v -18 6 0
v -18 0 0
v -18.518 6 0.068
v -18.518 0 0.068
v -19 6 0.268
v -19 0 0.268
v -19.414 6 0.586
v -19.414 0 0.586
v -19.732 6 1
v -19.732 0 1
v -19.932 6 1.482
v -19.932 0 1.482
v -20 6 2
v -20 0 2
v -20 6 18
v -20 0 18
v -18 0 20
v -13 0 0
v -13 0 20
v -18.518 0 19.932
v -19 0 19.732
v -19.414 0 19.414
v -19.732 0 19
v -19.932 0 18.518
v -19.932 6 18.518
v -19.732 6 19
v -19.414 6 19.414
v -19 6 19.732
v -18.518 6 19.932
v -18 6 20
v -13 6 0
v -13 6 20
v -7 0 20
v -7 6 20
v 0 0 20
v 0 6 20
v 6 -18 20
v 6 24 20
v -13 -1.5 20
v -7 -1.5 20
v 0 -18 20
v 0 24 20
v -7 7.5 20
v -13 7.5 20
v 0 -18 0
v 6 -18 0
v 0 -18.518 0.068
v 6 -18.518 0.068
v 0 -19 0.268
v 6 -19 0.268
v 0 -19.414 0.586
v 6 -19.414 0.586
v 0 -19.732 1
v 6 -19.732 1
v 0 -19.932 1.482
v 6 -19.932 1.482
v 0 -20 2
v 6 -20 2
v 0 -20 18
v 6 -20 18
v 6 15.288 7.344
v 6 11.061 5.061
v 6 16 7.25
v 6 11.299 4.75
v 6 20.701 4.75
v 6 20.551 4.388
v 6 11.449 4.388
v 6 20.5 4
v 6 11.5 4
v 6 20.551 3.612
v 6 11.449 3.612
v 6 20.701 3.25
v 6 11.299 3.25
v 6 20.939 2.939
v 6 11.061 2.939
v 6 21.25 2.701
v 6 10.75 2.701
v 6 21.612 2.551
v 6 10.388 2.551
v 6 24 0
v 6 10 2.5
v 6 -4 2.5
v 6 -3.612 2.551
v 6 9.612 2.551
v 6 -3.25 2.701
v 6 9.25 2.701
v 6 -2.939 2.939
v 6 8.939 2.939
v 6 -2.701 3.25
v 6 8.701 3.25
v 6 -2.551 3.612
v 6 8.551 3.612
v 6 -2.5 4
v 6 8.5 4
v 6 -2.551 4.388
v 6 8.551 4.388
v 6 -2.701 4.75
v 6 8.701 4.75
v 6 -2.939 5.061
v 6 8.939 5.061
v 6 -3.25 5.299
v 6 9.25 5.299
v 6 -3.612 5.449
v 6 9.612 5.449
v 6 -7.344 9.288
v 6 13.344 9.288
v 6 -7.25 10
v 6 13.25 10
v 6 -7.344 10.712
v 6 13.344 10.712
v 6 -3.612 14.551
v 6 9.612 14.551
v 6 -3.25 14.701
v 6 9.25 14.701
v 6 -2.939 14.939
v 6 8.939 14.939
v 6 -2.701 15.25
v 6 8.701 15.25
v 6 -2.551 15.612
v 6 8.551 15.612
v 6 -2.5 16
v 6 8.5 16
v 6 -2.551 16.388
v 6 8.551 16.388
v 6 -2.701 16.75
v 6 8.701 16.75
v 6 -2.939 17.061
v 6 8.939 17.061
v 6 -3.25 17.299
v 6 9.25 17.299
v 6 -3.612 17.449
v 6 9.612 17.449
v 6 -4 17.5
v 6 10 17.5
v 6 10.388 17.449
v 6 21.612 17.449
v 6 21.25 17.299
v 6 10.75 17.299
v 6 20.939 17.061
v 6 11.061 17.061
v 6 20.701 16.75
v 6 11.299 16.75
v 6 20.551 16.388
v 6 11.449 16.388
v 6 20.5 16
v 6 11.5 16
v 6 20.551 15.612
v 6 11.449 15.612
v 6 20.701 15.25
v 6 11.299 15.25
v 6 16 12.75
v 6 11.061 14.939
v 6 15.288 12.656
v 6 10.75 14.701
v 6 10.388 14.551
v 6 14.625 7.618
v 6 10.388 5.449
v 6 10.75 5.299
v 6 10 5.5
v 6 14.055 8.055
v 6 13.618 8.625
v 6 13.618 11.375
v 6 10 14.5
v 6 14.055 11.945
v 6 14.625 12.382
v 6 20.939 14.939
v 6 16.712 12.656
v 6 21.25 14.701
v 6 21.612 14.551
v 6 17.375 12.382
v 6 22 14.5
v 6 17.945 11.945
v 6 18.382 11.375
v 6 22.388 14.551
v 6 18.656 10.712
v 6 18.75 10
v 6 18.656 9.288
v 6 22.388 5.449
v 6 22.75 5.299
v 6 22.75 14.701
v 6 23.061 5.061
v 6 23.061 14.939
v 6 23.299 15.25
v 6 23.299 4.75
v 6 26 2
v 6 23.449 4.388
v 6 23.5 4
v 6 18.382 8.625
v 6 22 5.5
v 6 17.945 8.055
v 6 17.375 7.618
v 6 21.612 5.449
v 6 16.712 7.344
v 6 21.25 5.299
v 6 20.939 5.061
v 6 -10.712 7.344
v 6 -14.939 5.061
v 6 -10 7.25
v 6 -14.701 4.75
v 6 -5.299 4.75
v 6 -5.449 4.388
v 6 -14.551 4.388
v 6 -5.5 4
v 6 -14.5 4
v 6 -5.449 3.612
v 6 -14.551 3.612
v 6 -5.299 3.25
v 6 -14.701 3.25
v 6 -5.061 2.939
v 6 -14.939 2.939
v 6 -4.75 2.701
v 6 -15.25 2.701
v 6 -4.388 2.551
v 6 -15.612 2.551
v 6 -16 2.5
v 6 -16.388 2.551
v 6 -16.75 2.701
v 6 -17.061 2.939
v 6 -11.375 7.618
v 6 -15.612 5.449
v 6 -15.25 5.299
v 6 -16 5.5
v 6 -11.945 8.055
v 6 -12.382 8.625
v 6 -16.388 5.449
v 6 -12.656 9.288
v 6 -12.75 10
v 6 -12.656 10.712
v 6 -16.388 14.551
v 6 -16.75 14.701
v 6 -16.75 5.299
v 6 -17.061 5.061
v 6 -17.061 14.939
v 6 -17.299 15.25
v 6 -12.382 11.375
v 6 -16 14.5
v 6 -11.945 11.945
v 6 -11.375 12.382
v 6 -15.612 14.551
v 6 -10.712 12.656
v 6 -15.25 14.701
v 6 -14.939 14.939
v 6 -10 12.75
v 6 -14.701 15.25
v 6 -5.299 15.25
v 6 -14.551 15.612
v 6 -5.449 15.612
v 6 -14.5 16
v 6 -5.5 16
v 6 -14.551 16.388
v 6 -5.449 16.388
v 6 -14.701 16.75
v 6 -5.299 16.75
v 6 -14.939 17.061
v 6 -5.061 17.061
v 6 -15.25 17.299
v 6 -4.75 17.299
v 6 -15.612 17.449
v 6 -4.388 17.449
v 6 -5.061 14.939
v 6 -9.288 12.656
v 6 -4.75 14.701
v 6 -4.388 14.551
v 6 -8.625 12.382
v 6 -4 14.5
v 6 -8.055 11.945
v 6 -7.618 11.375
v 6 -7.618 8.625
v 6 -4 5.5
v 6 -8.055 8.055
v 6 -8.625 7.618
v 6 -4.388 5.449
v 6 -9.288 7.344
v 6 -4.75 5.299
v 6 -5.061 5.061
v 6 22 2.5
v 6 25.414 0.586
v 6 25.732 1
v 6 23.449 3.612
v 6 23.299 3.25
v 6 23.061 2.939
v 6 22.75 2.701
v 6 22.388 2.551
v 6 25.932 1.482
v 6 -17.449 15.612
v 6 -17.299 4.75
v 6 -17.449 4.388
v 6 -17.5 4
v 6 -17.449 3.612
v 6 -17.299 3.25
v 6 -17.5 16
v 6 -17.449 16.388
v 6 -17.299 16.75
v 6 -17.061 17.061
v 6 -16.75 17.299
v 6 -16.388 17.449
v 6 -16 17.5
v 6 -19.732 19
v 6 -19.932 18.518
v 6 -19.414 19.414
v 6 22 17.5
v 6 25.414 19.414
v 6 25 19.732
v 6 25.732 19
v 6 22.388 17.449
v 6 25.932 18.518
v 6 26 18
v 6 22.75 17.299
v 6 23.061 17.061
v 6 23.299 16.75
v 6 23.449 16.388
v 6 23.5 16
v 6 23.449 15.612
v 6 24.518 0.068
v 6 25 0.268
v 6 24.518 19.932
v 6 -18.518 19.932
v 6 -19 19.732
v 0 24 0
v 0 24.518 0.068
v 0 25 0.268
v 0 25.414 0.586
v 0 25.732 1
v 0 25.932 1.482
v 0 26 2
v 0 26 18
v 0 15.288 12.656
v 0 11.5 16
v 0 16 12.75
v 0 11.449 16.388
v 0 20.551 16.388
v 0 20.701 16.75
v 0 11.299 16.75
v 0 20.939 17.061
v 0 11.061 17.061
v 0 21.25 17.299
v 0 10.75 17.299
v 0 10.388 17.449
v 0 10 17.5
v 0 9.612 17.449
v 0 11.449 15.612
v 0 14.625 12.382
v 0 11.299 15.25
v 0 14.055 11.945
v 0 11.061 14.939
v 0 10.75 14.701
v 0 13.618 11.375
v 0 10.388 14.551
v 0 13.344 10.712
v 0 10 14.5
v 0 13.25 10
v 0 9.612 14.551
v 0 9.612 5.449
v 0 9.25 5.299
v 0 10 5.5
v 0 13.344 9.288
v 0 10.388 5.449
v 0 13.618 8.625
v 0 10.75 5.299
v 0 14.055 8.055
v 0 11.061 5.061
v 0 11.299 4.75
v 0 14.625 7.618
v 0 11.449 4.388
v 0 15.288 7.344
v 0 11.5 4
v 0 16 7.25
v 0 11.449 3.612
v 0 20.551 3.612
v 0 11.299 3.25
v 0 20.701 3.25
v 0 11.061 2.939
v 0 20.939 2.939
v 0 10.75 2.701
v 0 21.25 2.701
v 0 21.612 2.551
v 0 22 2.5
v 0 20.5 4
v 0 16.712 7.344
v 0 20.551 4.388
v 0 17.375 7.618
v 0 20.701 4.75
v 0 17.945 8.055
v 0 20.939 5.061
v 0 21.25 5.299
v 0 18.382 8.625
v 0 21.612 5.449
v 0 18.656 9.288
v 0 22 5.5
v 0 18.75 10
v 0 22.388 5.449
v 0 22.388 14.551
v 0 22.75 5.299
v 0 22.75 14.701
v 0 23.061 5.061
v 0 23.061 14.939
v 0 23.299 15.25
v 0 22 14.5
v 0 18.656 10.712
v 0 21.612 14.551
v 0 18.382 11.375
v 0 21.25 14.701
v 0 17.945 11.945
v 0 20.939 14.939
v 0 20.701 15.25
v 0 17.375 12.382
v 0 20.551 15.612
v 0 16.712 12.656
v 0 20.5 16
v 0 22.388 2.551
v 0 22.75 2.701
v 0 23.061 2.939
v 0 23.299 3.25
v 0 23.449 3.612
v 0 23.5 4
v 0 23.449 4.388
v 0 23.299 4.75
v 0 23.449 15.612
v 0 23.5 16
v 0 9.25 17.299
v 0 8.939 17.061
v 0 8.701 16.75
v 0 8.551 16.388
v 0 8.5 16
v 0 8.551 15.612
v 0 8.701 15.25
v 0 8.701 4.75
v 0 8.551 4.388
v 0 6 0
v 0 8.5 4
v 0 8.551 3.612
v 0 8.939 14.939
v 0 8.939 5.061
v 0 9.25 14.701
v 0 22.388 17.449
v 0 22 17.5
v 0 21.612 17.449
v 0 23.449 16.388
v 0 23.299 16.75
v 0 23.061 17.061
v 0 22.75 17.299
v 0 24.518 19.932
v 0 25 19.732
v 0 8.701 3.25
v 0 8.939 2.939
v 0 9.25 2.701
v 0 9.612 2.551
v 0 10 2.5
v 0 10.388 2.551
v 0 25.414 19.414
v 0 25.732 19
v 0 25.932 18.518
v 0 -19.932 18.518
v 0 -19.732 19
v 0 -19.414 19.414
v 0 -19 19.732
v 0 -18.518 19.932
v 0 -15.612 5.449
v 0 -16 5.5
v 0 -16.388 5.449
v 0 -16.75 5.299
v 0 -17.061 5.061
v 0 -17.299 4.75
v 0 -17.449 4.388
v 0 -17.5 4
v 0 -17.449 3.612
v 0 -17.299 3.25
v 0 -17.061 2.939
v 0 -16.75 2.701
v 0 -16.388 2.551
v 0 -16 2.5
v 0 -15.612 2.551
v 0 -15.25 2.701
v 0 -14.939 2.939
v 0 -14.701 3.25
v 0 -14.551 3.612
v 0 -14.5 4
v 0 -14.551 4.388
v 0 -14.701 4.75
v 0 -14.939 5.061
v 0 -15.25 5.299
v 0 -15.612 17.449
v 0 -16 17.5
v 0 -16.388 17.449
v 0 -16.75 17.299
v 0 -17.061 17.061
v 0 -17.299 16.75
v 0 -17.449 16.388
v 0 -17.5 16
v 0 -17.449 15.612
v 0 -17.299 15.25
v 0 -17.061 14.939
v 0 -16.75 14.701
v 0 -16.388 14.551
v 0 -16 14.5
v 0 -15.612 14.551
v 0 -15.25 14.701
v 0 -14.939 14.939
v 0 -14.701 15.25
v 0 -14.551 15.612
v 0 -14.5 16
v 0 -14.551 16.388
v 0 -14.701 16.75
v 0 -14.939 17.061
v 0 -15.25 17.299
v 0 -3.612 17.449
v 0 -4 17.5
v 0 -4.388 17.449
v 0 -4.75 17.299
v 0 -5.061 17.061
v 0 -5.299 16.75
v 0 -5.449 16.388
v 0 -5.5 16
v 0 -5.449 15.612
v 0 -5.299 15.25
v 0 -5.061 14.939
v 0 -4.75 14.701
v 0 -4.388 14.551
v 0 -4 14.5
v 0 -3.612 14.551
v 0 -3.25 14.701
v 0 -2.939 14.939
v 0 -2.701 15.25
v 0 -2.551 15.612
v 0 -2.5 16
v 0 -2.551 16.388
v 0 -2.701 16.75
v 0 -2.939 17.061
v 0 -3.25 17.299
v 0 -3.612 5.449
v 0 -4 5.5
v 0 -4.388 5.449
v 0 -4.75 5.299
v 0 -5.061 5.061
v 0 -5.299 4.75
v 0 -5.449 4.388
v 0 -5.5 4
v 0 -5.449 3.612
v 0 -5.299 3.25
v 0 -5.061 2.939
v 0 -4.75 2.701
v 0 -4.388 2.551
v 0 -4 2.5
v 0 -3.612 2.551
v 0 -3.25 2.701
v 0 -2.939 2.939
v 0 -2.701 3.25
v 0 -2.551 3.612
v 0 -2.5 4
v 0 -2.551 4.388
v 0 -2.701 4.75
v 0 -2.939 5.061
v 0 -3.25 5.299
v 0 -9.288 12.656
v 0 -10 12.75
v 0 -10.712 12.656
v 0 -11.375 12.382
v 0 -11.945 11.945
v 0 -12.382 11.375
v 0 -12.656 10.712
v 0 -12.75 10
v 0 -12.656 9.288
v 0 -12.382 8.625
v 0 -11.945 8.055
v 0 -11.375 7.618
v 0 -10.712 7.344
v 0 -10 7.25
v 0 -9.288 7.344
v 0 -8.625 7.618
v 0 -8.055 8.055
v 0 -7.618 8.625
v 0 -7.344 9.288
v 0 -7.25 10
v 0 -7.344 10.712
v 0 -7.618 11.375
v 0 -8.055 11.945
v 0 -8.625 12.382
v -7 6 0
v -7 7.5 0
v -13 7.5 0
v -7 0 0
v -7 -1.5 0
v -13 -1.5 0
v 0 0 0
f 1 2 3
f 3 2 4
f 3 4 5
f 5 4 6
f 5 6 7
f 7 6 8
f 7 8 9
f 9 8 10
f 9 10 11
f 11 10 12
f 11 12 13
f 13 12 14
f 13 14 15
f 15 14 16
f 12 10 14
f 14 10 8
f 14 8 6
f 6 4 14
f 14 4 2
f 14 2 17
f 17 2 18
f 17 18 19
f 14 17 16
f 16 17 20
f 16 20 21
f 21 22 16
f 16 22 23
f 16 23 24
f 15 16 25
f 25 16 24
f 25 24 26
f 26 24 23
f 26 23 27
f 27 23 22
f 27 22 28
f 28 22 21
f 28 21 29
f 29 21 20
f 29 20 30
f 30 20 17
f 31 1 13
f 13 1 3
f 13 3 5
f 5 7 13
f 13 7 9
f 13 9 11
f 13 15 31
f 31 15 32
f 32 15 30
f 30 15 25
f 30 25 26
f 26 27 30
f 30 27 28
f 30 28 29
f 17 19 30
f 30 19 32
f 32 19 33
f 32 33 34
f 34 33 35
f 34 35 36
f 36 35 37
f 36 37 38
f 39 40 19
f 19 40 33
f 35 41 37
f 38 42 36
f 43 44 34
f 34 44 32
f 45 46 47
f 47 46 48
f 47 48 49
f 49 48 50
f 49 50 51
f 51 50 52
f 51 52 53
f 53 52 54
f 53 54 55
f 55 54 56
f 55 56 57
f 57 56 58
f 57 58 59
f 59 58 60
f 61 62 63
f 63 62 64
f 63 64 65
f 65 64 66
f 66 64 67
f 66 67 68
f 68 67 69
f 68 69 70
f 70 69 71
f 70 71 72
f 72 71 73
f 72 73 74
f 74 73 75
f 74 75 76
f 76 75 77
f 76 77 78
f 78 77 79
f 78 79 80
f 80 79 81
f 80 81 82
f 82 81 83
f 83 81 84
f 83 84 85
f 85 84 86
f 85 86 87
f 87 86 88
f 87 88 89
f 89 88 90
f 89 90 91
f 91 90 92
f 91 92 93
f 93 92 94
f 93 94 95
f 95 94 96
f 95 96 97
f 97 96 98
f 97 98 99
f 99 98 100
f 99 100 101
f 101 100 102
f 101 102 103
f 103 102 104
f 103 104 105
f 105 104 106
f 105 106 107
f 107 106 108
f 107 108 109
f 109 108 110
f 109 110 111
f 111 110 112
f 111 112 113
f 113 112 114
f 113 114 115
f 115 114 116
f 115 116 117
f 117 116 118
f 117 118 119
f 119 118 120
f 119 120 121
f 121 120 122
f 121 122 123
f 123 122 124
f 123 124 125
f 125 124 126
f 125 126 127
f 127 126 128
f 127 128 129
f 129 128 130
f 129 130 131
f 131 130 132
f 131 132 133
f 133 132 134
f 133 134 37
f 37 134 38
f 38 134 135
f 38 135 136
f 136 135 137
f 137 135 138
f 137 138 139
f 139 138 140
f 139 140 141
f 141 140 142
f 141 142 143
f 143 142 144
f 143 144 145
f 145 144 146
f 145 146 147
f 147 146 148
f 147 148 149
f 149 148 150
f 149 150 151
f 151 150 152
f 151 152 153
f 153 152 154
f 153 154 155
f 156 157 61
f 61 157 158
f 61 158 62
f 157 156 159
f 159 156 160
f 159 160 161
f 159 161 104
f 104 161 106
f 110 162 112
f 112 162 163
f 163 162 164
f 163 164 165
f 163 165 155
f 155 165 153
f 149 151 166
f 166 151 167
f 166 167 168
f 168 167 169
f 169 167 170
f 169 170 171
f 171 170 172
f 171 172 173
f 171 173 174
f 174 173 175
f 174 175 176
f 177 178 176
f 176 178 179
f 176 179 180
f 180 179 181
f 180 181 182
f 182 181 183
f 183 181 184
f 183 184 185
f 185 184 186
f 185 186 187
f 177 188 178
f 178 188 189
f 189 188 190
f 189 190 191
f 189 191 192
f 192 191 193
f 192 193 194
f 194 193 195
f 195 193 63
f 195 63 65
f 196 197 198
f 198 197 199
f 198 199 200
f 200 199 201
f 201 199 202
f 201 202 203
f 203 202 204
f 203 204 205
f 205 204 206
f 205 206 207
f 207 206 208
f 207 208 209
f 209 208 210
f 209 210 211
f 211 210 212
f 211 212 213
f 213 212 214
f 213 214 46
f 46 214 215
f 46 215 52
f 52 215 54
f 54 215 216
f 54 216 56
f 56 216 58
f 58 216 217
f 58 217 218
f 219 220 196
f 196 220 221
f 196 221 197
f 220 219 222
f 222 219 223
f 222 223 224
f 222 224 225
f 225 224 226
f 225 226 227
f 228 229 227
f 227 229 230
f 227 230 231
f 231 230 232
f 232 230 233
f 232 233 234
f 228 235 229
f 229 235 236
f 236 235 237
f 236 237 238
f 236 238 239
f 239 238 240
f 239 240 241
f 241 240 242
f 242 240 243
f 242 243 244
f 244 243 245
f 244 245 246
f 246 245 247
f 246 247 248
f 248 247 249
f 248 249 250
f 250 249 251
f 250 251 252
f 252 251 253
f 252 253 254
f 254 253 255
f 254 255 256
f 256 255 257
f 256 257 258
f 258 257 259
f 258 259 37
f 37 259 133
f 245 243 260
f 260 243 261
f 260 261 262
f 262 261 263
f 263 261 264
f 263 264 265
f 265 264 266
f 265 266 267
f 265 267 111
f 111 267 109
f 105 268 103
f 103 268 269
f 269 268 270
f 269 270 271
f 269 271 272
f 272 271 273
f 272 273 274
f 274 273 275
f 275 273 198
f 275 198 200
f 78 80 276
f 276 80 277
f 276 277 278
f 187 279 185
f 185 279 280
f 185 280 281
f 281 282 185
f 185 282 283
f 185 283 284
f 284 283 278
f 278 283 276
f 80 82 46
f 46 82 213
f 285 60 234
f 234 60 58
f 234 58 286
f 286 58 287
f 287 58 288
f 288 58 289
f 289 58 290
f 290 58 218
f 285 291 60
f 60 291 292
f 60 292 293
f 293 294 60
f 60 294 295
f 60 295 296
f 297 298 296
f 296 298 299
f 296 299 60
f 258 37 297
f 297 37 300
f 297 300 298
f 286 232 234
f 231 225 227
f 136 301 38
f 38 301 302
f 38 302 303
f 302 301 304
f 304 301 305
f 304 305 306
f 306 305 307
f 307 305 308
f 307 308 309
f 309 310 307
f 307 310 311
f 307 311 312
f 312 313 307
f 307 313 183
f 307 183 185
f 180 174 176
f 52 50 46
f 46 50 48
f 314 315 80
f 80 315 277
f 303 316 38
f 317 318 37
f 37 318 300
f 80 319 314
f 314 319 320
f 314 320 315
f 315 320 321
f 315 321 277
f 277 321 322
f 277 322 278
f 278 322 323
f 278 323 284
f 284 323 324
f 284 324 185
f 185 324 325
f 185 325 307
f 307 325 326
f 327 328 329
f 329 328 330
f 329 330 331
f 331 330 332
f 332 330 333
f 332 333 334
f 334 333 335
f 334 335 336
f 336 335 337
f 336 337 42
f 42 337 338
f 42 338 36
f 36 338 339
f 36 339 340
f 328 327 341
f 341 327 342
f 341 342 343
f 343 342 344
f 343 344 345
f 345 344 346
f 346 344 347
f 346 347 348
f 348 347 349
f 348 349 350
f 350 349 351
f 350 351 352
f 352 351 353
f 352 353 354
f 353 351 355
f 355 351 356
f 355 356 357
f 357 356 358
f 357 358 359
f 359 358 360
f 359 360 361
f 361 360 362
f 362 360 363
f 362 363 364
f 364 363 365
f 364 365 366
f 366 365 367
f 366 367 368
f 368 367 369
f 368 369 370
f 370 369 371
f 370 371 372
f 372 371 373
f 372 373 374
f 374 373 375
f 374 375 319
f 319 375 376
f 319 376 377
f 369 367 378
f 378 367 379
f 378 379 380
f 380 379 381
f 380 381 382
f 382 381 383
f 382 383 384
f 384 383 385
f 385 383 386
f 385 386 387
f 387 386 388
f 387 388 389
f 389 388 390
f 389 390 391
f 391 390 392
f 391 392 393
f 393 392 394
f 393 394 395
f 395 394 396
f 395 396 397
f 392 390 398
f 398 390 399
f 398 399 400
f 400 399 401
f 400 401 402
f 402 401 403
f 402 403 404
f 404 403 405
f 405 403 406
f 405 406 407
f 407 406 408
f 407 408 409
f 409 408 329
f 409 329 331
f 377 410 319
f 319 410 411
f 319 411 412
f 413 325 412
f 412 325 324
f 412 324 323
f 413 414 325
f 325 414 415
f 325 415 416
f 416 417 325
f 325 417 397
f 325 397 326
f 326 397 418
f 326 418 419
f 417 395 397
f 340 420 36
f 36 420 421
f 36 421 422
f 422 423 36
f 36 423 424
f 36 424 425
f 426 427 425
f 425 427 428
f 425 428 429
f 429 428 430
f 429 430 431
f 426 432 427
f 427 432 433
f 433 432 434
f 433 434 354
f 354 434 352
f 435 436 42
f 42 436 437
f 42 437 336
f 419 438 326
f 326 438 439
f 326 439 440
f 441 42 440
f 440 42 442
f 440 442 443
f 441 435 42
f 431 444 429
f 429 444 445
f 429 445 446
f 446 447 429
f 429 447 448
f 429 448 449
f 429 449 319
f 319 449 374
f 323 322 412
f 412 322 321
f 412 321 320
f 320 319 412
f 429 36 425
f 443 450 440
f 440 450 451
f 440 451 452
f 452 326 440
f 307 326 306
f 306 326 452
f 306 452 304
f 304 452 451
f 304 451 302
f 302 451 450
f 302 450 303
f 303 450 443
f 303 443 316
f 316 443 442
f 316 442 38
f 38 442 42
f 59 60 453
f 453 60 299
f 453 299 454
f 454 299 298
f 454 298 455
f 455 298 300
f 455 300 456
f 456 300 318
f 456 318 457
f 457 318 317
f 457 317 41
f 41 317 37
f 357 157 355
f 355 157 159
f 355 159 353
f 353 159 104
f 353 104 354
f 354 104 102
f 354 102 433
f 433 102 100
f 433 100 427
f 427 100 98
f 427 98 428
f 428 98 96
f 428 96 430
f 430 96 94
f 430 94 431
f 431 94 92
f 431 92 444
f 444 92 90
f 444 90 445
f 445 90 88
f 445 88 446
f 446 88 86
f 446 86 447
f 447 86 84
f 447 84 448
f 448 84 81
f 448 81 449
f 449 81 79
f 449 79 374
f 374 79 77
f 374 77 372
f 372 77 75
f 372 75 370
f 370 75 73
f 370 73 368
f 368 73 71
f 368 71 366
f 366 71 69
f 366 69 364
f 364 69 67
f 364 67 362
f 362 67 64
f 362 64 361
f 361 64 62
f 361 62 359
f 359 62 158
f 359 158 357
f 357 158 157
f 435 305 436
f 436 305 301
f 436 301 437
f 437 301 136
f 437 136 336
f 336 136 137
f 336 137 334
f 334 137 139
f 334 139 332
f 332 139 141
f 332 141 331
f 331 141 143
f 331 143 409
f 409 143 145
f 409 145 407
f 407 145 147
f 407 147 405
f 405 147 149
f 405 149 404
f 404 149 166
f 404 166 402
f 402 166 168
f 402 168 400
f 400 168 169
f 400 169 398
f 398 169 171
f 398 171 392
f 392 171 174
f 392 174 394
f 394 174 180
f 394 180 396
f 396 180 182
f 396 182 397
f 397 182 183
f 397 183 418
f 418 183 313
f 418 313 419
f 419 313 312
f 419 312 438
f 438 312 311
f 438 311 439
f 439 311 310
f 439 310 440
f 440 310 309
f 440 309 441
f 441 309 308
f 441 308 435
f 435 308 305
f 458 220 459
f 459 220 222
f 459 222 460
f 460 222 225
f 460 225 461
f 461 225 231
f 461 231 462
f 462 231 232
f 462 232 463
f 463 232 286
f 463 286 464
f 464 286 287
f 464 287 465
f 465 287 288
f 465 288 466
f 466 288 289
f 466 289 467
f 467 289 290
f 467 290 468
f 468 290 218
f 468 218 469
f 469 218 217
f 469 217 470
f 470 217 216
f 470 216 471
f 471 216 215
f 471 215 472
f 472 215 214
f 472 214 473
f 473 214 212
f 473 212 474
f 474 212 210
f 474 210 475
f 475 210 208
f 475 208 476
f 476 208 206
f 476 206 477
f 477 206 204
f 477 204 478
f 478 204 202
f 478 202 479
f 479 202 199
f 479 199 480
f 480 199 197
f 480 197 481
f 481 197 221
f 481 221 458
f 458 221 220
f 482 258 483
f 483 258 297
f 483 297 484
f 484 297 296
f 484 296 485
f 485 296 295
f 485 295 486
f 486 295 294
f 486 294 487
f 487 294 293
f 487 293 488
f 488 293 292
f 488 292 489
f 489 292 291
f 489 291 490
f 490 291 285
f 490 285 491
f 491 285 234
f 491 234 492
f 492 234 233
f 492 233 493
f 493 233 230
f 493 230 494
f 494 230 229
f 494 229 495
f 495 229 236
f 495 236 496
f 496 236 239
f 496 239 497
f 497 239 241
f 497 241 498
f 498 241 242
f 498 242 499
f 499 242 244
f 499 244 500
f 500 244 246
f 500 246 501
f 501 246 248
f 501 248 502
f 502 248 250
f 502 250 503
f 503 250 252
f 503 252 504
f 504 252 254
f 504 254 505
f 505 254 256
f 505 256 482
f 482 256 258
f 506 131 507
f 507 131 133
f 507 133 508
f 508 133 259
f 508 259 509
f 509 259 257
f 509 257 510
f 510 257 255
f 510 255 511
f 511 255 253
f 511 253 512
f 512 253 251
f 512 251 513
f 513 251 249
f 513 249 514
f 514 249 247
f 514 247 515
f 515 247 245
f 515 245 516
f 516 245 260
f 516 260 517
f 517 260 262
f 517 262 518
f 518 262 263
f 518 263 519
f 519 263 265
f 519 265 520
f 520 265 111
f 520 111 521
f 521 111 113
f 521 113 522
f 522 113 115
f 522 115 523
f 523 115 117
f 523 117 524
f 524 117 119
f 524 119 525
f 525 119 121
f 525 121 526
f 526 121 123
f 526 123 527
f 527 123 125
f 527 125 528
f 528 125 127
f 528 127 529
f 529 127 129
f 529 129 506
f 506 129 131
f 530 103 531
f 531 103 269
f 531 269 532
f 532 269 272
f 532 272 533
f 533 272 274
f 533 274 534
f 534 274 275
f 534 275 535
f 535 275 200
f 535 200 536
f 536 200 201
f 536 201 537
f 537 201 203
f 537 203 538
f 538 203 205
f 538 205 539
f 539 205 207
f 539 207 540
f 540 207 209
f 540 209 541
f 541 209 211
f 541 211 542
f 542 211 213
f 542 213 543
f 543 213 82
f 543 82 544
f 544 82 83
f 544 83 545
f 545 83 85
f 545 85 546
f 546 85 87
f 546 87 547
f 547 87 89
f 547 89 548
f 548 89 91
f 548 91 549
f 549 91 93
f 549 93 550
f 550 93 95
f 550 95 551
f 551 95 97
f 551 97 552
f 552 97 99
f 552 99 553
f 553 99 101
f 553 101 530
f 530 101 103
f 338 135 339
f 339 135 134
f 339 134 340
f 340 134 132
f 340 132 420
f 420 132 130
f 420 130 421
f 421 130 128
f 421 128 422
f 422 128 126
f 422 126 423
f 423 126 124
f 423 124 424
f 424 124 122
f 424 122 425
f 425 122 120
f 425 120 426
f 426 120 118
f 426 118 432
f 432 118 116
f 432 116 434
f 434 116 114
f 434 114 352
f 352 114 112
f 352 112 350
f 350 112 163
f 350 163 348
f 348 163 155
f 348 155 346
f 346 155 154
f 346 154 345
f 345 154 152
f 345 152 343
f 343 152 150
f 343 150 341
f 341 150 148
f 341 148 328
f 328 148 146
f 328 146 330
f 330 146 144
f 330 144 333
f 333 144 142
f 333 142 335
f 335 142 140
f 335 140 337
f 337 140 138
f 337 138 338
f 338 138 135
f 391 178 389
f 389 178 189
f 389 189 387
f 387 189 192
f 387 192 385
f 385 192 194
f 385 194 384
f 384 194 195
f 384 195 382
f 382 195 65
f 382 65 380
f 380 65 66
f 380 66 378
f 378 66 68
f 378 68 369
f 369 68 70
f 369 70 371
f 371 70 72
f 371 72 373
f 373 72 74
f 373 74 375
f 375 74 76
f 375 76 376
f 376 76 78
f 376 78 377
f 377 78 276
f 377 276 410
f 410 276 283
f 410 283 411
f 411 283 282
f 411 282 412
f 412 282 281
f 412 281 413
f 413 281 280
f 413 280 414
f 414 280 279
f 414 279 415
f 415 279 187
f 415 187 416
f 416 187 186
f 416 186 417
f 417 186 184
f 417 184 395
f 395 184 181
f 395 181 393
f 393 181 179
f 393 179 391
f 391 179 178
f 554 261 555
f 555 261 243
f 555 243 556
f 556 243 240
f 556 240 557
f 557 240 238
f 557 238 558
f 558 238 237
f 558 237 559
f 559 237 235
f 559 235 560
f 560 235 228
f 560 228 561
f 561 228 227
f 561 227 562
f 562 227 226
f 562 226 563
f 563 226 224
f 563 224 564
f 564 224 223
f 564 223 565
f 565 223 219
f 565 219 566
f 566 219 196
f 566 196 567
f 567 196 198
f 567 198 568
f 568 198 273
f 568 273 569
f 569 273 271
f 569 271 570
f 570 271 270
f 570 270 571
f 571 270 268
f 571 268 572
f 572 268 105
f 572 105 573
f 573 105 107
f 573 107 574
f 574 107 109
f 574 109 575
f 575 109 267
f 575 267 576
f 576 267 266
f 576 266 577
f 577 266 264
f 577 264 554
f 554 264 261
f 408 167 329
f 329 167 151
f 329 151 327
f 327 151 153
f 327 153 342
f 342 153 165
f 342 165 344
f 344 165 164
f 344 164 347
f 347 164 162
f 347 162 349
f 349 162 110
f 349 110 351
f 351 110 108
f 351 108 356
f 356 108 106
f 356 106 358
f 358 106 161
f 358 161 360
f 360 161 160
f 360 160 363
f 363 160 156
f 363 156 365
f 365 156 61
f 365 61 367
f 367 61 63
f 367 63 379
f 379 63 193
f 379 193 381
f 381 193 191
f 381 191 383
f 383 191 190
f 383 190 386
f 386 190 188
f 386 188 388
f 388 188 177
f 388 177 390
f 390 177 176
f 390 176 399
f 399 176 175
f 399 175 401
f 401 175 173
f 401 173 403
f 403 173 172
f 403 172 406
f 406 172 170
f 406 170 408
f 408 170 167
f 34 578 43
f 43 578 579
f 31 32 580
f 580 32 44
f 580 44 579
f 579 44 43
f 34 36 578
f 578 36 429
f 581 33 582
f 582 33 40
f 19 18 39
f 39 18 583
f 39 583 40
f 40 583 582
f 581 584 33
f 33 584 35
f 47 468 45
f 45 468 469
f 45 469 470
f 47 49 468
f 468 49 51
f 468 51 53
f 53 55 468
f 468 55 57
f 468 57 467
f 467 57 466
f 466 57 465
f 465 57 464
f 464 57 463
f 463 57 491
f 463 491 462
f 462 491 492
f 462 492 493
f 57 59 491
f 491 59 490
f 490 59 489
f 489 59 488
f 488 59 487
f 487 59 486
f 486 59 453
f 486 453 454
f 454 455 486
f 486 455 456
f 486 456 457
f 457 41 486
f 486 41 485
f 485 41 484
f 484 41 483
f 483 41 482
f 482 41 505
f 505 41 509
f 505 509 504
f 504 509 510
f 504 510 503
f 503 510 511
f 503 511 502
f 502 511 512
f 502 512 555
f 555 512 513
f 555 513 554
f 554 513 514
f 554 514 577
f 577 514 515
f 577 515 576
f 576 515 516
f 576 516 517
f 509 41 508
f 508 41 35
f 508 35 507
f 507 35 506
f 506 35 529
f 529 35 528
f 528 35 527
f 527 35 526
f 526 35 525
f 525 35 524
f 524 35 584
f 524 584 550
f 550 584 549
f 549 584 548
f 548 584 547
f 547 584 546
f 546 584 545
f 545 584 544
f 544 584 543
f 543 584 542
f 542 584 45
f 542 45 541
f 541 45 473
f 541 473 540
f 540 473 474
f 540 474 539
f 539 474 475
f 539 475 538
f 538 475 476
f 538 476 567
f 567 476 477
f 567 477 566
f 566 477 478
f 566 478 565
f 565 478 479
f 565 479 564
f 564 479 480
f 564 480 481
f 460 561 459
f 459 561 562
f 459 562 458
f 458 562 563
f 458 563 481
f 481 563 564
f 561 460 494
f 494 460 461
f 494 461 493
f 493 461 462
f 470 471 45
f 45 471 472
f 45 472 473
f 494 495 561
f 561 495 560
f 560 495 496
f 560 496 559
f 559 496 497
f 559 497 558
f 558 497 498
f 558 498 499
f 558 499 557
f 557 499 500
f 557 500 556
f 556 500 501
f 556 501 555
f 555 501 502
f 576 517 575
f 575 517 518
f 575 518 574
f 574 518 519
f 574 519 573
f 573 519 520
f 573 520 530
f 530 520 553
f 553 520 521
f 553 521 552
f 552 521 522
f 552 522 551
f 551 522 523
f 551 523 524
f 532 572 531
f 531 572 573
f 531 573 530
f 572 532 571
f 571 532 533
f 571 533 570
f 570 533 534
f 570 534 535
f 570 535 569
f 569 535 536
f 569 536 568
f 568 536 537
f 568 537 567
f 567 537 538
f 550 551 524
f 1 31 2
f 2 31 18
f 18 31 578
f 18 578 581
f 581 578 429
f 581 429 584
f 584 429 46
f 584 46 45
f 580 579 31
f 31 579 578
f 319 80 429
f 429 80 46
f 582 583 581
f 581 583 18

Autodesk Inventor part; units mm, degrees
ref_plane "YZ Plane" through (0, 0, 0) normal (1, 0, 0) x (0, 1, 0)
ref_plane "XZ Plane" through (0, 0, 0) normal (0, 1, 0) x (-1, 0, 0)
sketch "Sketch1" plane through (0, 0, 0) normal (0, 0, 1) x (1, 0, 0)
  line L0 (0, 0) -> (0, -20)
  line L1 (0, 0) -> (-20, 0)
  line L2 (-20, 6) -> (0, 6)
  line L3 (6, 26) -> (6, -20)
  line L4 (-20, 0) -> (-20, 6)
  line L5 (0, -20) -> (6, -20)
  line L6 (0, 6) -> (0, 26)
  line L7 (0, 26) -> (6, 26)
  dimension "d0" = 20
  dimension "d1" = 20
  dimension "d2" = 6
  dimension "d3" = 26
  dimension "d4" = 6
  dimension "d5" = 46
extrude "Extrusion1" add sketch "Sketch1" along normal blind 20
sketch "Sketch2" plane through (-20, 0, 0) normal (0, -1, 0) x (1, 0, 0)
  line L0 (0, 20) -> (20, 20) projected
  line L1 (7, 20) -> (7, 0)
  line L2 (7, 0) -> (13, 0)
  line L3 (0, 0) -> (20, 0) projected
  line L4 (13, 0) -> (13, 20)
  line L5 (13, 20) -> (7, 20)
  line L6 (0, 0) -> (0, 20) projected
  dimension "d8" = 6
  dimension "d9" = 7
extrude "Extrusion2" add sketch "Sketch2" along normal blind 1.5 contours L0 L4 L2 L1
ref_plane "Work Plane1" through (-20, 3, 0) normal (0, -1, 0) x (1, 0, 0)
mirror "Mirror1" about plane through (-20, 3, 0) normal (0, -1, 0) of "Extrusion2"
sketch "Sketch3" plane through (6, -20, 0) normal (1, 0, 0) x (0, 0, -1)
  line L0 (0, 0) -> (-20, 0) projected
  line L1 (0, 0) -> (0, 46) projected
  line L2 (-20, 0) -> (-20, 46) projected
  line L3 (-20, 23) -> (0, 23)
  point P0 (0, 20)
  point P1 (-10, 10)
  point P2 (-10, 36)
  dimension "d13" = 10
  dimension "d14" = 10
hole "Hole1" at (6, -10, 10) at (6, 16, 10) direction (-1, 0, 0) diameter 5.5 end through all
sketch "Sketch4" plane through (6, -20, 0) normal (1, 0, 0) x (0, 0, -1)
  line L0 (-20, 20) -> (-20, 0) projected
  line L1 (-20, 10) -> (0, 10)
  line L2 (0, 20) -> (0, 0) projected
  line L3 (0, 0) -> (-20, 0) projected
  line L4 (-10, 0) -> (-10, 29.1489)
  line L5 (-20, 0) -> (-20, 46) projected
  line L6 (-20, 23) -> (0, 23)
  line L7 (0, 26) -> (0, 20) projected
  point P0 (-16, 4)
  point P1 (-16, 16)
  point P2 (-4, 4)
  point P3 (-4, 16)
  point P4 (-16, 42)
  point P5 (-16, 30)
  point P6 (-4, 42)
  point P7 (-4, 30)
  dimension "d22" = 6
  dimension "d23" = 6
hole "Hole2" at (6, -16, 16) at (6, -4, 16) at (6, -16, 4) at (6, -4, 4) at (6, 22, 16) at (6, 10, 16) at (6, 10, 4) at (6, 22, 4) direction (-1, 0, 0) diameter 3 end through all
fillet "Fillet1" radius 2 6 edges at (3, -20, 20) (3, 26, 20) (3, 26, 0) (3, -20, 0) (-20, 3, 20) (-20, 3, 0)
properties part number "Estrutura - Cabos"
